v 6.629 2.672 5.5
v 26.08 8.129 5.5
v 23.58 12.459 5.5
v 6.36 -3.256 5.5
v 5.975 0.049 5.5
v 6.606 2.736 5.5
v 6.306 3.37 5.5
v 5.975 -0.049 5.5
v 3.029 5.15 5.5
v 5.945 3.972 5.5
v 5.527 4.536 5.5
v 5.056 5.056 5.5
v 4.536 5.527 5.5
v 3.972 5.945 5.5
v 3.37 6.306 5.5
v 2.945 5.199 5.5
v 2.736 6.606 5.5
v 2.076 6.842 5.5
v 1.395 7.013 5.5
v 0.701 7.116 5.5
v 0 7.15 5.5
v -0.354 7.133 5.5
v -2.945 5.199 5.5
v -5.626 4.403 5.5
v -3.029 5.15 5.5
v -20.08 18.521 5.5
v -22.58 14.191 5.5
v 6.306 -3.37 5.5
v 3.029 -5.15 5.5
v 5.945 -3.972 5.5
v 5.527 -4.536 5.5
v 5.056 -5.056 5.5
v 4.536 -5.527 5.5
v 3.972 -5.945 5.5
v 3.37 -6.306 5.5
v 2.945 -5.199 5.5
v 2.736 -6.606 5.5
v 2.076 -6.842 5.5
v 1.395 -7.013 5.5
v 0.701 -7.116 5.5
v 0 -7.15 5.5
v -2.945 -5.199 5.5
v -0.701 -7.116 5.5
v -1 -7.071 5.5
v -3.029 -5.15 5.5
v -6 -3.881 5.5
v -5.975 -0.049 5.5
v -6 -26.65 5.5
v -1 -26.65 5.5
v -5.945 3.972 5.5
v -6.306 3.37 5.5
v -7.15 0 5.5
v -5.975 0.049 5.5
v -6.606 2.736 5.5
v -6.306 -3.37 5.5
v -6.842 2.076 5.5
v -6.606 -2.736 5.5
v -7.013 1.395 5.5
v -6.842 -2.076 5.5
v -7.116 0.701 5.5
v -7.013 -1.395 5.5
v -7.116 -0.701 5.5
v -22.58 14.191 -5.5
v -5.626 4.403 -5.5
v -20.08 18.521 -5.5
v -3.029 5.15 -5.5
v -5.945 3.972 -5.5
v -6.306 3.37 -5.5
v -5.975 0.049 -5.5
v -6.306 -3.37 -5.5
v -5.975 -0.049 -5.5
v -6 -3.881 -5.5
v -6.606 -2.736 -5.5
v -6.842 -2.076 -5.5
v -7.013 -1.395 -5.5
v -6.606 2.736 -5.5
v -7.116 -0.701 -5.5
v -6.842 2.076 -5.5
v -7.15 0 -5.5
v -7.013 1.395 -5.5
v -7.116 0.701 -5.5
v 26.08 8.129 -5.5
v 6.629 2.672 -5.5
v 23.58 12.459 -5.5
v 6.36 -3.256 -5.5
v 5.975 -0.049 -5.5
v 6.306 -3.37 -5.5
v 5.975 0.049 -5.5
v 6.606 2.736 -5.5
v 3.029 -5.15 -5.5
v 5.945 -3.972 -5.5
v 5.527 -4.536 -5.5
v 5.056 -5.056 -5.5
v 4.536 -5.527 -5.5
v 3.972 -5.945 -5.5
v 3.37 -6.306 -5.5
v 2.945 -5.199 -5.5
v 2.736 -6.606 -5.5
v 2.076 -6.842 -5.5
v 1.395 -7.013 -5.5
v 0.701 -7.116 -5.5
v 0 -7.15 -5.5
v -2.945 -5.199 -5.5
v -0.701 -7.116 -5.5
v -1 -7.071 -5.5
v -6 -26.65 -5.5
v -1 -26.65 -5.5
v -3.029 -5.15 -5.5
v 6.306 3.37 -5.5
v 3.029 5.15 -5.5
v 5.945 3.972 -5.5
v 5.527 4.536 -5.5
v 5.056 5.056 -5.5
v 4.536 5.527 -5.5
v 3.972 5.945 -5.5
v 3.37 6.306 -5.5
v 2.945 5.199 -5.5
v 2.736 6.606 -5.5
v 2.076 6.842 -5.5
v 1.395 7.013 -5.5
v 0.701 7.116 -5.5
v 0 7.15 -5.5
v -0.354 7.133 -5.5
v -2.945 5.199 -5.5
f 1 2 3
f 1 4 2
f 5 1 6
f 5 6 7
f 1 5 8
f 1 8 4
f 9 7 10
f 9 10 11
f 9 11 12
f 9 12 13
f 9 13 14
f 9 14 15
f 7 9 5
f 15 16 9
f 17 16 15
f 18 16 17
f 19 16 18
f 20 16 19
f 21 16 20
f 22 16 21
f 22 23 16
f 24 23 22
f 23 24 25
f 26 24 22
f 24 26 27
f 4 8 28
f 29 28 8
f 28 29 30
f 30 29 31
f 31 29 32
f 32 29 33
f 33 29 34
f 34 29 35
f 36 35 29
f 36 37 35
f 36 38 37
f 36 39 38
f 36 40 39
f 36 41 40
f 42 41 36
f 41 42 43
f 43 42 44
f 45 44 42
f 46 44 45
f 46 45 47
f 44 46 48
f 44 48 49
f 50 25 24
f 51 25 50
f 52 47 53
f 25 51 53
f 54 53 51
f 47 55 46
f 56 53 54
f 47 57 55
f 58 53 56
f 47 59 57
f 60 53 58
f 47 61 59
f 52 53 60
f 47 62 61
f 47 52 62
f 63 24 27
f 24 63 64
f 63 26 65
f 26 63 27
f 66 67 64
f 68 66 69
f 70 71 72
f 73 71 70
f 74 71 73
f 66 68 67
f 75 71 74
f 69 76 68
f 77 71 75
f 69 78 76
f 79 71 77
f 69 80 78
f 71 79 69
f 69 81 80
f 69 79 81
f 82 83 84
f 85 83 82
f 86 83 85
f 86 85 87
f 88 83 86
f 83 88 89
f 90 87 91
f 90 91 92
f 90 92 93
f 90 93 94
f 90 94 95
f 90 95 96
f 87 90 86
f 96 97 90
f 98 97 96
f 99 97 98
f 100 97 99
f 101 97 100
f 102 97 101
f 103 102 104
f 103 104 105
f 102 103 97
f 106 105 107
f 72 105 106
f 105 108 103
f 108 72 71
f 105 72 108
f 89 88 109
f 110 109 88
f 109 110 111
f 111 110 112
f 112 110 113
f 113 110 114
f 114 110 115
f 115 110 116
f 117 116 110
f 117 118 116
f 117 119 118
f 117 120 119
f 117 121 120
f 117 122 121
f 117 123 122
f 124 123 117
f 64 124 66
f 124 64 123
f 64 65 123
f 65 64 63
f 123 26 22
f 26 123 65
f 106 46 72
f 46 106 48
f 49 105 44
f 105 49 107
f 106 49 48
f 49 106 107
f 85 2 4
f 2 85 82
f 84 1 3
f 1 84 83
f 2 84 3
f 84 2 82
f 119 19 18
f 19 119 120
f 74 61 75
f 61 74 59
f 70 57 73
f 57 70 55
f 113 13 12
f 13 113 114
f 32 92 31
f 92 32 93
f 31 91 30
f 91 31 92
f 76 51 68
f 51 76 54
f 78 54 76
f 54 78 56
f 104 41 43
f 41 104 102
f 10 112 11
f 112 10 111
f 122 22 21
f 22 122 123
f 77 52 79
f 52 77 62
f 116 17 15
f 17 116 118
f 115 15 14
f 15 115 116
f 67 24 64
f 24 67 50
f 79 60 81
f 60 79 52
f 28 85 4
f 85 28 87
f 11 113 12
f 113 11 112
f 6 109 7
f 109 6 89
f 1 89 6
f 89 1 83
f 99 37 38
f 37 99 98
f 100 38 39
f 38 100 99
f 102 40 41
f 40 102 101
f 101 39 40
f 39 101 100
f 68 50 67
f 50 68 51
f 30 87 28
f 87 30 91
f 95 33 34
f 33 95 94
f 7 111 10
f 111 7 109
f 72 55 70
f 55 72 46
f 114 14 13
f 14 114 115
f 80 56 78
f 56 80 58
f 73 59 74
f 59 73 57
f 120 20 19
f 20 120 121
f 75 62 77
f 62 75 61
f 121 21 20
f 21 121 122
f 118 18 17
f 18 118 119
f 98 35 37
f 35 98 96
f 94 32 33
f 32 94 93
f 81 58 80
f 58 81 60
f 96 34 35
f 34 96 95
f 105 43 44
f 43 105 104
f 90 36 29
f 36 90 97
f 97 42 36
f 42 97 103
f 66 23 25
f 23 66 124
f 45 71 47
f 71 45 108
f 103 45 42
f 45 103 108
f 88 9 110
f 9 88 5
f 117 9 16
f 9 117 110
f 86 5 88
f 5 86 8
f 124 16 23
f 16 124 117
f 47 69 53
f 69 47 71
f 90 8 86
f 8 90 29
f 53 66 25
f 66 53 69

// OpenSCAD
circle_outside_diameter=15;
nut_outside_diameter=10.3;
//nut_sides=6;
nut_z=11; //main z dimension
blade_length=23.5; //26 from virtual center
blade_angle=60;
blade_thickn=5;
rotorThickn=4;
bladeyMove=2;
bladexMove=1; //0 to 1 optimal

$fn = 64;

difference(){
rotor();
fhex(nut_outside_diameter,nut_z); //drilled octagon (position for nut)
}    

module fhex(wid,height){
hull(){
cube([wid/1.7,wid,height],center = true);
rotate([0,0,120])cube([wid/1.7,wid,height],center = true);
rotate([0,0,240])cube([wid/1.7,wid,height],center = true);
}
}

module rotor(){
cylinder(h=nut_z,d=nut_outside_diameter+rotorThickn,center=true);
blades();
}

module blades(){
rotate([0,0,blade_angle]) translate([bladexMove,nut_outside_diameter/2-bladeyMove,-nut_z/2]) cube([blade_thickn,blade_length,nut_z],center=false);
rotate([0,0,360/3]) rotate([0,0,blade_angle]) translate([bladexMove,nut_outside_diameter/2-bladeyMove,-nut_z/2]) cube([blade_thickn,blade_length,nut_z],center=false);
rotate([0,0,2*360/3]) rotate([0,0,blade_angle]) translate([bladexMove,nut_outside_diameter/2-bladeyMove,-nut_z/2]) cube([blade_thickn,blade_length,nut_z],center=false);

}
